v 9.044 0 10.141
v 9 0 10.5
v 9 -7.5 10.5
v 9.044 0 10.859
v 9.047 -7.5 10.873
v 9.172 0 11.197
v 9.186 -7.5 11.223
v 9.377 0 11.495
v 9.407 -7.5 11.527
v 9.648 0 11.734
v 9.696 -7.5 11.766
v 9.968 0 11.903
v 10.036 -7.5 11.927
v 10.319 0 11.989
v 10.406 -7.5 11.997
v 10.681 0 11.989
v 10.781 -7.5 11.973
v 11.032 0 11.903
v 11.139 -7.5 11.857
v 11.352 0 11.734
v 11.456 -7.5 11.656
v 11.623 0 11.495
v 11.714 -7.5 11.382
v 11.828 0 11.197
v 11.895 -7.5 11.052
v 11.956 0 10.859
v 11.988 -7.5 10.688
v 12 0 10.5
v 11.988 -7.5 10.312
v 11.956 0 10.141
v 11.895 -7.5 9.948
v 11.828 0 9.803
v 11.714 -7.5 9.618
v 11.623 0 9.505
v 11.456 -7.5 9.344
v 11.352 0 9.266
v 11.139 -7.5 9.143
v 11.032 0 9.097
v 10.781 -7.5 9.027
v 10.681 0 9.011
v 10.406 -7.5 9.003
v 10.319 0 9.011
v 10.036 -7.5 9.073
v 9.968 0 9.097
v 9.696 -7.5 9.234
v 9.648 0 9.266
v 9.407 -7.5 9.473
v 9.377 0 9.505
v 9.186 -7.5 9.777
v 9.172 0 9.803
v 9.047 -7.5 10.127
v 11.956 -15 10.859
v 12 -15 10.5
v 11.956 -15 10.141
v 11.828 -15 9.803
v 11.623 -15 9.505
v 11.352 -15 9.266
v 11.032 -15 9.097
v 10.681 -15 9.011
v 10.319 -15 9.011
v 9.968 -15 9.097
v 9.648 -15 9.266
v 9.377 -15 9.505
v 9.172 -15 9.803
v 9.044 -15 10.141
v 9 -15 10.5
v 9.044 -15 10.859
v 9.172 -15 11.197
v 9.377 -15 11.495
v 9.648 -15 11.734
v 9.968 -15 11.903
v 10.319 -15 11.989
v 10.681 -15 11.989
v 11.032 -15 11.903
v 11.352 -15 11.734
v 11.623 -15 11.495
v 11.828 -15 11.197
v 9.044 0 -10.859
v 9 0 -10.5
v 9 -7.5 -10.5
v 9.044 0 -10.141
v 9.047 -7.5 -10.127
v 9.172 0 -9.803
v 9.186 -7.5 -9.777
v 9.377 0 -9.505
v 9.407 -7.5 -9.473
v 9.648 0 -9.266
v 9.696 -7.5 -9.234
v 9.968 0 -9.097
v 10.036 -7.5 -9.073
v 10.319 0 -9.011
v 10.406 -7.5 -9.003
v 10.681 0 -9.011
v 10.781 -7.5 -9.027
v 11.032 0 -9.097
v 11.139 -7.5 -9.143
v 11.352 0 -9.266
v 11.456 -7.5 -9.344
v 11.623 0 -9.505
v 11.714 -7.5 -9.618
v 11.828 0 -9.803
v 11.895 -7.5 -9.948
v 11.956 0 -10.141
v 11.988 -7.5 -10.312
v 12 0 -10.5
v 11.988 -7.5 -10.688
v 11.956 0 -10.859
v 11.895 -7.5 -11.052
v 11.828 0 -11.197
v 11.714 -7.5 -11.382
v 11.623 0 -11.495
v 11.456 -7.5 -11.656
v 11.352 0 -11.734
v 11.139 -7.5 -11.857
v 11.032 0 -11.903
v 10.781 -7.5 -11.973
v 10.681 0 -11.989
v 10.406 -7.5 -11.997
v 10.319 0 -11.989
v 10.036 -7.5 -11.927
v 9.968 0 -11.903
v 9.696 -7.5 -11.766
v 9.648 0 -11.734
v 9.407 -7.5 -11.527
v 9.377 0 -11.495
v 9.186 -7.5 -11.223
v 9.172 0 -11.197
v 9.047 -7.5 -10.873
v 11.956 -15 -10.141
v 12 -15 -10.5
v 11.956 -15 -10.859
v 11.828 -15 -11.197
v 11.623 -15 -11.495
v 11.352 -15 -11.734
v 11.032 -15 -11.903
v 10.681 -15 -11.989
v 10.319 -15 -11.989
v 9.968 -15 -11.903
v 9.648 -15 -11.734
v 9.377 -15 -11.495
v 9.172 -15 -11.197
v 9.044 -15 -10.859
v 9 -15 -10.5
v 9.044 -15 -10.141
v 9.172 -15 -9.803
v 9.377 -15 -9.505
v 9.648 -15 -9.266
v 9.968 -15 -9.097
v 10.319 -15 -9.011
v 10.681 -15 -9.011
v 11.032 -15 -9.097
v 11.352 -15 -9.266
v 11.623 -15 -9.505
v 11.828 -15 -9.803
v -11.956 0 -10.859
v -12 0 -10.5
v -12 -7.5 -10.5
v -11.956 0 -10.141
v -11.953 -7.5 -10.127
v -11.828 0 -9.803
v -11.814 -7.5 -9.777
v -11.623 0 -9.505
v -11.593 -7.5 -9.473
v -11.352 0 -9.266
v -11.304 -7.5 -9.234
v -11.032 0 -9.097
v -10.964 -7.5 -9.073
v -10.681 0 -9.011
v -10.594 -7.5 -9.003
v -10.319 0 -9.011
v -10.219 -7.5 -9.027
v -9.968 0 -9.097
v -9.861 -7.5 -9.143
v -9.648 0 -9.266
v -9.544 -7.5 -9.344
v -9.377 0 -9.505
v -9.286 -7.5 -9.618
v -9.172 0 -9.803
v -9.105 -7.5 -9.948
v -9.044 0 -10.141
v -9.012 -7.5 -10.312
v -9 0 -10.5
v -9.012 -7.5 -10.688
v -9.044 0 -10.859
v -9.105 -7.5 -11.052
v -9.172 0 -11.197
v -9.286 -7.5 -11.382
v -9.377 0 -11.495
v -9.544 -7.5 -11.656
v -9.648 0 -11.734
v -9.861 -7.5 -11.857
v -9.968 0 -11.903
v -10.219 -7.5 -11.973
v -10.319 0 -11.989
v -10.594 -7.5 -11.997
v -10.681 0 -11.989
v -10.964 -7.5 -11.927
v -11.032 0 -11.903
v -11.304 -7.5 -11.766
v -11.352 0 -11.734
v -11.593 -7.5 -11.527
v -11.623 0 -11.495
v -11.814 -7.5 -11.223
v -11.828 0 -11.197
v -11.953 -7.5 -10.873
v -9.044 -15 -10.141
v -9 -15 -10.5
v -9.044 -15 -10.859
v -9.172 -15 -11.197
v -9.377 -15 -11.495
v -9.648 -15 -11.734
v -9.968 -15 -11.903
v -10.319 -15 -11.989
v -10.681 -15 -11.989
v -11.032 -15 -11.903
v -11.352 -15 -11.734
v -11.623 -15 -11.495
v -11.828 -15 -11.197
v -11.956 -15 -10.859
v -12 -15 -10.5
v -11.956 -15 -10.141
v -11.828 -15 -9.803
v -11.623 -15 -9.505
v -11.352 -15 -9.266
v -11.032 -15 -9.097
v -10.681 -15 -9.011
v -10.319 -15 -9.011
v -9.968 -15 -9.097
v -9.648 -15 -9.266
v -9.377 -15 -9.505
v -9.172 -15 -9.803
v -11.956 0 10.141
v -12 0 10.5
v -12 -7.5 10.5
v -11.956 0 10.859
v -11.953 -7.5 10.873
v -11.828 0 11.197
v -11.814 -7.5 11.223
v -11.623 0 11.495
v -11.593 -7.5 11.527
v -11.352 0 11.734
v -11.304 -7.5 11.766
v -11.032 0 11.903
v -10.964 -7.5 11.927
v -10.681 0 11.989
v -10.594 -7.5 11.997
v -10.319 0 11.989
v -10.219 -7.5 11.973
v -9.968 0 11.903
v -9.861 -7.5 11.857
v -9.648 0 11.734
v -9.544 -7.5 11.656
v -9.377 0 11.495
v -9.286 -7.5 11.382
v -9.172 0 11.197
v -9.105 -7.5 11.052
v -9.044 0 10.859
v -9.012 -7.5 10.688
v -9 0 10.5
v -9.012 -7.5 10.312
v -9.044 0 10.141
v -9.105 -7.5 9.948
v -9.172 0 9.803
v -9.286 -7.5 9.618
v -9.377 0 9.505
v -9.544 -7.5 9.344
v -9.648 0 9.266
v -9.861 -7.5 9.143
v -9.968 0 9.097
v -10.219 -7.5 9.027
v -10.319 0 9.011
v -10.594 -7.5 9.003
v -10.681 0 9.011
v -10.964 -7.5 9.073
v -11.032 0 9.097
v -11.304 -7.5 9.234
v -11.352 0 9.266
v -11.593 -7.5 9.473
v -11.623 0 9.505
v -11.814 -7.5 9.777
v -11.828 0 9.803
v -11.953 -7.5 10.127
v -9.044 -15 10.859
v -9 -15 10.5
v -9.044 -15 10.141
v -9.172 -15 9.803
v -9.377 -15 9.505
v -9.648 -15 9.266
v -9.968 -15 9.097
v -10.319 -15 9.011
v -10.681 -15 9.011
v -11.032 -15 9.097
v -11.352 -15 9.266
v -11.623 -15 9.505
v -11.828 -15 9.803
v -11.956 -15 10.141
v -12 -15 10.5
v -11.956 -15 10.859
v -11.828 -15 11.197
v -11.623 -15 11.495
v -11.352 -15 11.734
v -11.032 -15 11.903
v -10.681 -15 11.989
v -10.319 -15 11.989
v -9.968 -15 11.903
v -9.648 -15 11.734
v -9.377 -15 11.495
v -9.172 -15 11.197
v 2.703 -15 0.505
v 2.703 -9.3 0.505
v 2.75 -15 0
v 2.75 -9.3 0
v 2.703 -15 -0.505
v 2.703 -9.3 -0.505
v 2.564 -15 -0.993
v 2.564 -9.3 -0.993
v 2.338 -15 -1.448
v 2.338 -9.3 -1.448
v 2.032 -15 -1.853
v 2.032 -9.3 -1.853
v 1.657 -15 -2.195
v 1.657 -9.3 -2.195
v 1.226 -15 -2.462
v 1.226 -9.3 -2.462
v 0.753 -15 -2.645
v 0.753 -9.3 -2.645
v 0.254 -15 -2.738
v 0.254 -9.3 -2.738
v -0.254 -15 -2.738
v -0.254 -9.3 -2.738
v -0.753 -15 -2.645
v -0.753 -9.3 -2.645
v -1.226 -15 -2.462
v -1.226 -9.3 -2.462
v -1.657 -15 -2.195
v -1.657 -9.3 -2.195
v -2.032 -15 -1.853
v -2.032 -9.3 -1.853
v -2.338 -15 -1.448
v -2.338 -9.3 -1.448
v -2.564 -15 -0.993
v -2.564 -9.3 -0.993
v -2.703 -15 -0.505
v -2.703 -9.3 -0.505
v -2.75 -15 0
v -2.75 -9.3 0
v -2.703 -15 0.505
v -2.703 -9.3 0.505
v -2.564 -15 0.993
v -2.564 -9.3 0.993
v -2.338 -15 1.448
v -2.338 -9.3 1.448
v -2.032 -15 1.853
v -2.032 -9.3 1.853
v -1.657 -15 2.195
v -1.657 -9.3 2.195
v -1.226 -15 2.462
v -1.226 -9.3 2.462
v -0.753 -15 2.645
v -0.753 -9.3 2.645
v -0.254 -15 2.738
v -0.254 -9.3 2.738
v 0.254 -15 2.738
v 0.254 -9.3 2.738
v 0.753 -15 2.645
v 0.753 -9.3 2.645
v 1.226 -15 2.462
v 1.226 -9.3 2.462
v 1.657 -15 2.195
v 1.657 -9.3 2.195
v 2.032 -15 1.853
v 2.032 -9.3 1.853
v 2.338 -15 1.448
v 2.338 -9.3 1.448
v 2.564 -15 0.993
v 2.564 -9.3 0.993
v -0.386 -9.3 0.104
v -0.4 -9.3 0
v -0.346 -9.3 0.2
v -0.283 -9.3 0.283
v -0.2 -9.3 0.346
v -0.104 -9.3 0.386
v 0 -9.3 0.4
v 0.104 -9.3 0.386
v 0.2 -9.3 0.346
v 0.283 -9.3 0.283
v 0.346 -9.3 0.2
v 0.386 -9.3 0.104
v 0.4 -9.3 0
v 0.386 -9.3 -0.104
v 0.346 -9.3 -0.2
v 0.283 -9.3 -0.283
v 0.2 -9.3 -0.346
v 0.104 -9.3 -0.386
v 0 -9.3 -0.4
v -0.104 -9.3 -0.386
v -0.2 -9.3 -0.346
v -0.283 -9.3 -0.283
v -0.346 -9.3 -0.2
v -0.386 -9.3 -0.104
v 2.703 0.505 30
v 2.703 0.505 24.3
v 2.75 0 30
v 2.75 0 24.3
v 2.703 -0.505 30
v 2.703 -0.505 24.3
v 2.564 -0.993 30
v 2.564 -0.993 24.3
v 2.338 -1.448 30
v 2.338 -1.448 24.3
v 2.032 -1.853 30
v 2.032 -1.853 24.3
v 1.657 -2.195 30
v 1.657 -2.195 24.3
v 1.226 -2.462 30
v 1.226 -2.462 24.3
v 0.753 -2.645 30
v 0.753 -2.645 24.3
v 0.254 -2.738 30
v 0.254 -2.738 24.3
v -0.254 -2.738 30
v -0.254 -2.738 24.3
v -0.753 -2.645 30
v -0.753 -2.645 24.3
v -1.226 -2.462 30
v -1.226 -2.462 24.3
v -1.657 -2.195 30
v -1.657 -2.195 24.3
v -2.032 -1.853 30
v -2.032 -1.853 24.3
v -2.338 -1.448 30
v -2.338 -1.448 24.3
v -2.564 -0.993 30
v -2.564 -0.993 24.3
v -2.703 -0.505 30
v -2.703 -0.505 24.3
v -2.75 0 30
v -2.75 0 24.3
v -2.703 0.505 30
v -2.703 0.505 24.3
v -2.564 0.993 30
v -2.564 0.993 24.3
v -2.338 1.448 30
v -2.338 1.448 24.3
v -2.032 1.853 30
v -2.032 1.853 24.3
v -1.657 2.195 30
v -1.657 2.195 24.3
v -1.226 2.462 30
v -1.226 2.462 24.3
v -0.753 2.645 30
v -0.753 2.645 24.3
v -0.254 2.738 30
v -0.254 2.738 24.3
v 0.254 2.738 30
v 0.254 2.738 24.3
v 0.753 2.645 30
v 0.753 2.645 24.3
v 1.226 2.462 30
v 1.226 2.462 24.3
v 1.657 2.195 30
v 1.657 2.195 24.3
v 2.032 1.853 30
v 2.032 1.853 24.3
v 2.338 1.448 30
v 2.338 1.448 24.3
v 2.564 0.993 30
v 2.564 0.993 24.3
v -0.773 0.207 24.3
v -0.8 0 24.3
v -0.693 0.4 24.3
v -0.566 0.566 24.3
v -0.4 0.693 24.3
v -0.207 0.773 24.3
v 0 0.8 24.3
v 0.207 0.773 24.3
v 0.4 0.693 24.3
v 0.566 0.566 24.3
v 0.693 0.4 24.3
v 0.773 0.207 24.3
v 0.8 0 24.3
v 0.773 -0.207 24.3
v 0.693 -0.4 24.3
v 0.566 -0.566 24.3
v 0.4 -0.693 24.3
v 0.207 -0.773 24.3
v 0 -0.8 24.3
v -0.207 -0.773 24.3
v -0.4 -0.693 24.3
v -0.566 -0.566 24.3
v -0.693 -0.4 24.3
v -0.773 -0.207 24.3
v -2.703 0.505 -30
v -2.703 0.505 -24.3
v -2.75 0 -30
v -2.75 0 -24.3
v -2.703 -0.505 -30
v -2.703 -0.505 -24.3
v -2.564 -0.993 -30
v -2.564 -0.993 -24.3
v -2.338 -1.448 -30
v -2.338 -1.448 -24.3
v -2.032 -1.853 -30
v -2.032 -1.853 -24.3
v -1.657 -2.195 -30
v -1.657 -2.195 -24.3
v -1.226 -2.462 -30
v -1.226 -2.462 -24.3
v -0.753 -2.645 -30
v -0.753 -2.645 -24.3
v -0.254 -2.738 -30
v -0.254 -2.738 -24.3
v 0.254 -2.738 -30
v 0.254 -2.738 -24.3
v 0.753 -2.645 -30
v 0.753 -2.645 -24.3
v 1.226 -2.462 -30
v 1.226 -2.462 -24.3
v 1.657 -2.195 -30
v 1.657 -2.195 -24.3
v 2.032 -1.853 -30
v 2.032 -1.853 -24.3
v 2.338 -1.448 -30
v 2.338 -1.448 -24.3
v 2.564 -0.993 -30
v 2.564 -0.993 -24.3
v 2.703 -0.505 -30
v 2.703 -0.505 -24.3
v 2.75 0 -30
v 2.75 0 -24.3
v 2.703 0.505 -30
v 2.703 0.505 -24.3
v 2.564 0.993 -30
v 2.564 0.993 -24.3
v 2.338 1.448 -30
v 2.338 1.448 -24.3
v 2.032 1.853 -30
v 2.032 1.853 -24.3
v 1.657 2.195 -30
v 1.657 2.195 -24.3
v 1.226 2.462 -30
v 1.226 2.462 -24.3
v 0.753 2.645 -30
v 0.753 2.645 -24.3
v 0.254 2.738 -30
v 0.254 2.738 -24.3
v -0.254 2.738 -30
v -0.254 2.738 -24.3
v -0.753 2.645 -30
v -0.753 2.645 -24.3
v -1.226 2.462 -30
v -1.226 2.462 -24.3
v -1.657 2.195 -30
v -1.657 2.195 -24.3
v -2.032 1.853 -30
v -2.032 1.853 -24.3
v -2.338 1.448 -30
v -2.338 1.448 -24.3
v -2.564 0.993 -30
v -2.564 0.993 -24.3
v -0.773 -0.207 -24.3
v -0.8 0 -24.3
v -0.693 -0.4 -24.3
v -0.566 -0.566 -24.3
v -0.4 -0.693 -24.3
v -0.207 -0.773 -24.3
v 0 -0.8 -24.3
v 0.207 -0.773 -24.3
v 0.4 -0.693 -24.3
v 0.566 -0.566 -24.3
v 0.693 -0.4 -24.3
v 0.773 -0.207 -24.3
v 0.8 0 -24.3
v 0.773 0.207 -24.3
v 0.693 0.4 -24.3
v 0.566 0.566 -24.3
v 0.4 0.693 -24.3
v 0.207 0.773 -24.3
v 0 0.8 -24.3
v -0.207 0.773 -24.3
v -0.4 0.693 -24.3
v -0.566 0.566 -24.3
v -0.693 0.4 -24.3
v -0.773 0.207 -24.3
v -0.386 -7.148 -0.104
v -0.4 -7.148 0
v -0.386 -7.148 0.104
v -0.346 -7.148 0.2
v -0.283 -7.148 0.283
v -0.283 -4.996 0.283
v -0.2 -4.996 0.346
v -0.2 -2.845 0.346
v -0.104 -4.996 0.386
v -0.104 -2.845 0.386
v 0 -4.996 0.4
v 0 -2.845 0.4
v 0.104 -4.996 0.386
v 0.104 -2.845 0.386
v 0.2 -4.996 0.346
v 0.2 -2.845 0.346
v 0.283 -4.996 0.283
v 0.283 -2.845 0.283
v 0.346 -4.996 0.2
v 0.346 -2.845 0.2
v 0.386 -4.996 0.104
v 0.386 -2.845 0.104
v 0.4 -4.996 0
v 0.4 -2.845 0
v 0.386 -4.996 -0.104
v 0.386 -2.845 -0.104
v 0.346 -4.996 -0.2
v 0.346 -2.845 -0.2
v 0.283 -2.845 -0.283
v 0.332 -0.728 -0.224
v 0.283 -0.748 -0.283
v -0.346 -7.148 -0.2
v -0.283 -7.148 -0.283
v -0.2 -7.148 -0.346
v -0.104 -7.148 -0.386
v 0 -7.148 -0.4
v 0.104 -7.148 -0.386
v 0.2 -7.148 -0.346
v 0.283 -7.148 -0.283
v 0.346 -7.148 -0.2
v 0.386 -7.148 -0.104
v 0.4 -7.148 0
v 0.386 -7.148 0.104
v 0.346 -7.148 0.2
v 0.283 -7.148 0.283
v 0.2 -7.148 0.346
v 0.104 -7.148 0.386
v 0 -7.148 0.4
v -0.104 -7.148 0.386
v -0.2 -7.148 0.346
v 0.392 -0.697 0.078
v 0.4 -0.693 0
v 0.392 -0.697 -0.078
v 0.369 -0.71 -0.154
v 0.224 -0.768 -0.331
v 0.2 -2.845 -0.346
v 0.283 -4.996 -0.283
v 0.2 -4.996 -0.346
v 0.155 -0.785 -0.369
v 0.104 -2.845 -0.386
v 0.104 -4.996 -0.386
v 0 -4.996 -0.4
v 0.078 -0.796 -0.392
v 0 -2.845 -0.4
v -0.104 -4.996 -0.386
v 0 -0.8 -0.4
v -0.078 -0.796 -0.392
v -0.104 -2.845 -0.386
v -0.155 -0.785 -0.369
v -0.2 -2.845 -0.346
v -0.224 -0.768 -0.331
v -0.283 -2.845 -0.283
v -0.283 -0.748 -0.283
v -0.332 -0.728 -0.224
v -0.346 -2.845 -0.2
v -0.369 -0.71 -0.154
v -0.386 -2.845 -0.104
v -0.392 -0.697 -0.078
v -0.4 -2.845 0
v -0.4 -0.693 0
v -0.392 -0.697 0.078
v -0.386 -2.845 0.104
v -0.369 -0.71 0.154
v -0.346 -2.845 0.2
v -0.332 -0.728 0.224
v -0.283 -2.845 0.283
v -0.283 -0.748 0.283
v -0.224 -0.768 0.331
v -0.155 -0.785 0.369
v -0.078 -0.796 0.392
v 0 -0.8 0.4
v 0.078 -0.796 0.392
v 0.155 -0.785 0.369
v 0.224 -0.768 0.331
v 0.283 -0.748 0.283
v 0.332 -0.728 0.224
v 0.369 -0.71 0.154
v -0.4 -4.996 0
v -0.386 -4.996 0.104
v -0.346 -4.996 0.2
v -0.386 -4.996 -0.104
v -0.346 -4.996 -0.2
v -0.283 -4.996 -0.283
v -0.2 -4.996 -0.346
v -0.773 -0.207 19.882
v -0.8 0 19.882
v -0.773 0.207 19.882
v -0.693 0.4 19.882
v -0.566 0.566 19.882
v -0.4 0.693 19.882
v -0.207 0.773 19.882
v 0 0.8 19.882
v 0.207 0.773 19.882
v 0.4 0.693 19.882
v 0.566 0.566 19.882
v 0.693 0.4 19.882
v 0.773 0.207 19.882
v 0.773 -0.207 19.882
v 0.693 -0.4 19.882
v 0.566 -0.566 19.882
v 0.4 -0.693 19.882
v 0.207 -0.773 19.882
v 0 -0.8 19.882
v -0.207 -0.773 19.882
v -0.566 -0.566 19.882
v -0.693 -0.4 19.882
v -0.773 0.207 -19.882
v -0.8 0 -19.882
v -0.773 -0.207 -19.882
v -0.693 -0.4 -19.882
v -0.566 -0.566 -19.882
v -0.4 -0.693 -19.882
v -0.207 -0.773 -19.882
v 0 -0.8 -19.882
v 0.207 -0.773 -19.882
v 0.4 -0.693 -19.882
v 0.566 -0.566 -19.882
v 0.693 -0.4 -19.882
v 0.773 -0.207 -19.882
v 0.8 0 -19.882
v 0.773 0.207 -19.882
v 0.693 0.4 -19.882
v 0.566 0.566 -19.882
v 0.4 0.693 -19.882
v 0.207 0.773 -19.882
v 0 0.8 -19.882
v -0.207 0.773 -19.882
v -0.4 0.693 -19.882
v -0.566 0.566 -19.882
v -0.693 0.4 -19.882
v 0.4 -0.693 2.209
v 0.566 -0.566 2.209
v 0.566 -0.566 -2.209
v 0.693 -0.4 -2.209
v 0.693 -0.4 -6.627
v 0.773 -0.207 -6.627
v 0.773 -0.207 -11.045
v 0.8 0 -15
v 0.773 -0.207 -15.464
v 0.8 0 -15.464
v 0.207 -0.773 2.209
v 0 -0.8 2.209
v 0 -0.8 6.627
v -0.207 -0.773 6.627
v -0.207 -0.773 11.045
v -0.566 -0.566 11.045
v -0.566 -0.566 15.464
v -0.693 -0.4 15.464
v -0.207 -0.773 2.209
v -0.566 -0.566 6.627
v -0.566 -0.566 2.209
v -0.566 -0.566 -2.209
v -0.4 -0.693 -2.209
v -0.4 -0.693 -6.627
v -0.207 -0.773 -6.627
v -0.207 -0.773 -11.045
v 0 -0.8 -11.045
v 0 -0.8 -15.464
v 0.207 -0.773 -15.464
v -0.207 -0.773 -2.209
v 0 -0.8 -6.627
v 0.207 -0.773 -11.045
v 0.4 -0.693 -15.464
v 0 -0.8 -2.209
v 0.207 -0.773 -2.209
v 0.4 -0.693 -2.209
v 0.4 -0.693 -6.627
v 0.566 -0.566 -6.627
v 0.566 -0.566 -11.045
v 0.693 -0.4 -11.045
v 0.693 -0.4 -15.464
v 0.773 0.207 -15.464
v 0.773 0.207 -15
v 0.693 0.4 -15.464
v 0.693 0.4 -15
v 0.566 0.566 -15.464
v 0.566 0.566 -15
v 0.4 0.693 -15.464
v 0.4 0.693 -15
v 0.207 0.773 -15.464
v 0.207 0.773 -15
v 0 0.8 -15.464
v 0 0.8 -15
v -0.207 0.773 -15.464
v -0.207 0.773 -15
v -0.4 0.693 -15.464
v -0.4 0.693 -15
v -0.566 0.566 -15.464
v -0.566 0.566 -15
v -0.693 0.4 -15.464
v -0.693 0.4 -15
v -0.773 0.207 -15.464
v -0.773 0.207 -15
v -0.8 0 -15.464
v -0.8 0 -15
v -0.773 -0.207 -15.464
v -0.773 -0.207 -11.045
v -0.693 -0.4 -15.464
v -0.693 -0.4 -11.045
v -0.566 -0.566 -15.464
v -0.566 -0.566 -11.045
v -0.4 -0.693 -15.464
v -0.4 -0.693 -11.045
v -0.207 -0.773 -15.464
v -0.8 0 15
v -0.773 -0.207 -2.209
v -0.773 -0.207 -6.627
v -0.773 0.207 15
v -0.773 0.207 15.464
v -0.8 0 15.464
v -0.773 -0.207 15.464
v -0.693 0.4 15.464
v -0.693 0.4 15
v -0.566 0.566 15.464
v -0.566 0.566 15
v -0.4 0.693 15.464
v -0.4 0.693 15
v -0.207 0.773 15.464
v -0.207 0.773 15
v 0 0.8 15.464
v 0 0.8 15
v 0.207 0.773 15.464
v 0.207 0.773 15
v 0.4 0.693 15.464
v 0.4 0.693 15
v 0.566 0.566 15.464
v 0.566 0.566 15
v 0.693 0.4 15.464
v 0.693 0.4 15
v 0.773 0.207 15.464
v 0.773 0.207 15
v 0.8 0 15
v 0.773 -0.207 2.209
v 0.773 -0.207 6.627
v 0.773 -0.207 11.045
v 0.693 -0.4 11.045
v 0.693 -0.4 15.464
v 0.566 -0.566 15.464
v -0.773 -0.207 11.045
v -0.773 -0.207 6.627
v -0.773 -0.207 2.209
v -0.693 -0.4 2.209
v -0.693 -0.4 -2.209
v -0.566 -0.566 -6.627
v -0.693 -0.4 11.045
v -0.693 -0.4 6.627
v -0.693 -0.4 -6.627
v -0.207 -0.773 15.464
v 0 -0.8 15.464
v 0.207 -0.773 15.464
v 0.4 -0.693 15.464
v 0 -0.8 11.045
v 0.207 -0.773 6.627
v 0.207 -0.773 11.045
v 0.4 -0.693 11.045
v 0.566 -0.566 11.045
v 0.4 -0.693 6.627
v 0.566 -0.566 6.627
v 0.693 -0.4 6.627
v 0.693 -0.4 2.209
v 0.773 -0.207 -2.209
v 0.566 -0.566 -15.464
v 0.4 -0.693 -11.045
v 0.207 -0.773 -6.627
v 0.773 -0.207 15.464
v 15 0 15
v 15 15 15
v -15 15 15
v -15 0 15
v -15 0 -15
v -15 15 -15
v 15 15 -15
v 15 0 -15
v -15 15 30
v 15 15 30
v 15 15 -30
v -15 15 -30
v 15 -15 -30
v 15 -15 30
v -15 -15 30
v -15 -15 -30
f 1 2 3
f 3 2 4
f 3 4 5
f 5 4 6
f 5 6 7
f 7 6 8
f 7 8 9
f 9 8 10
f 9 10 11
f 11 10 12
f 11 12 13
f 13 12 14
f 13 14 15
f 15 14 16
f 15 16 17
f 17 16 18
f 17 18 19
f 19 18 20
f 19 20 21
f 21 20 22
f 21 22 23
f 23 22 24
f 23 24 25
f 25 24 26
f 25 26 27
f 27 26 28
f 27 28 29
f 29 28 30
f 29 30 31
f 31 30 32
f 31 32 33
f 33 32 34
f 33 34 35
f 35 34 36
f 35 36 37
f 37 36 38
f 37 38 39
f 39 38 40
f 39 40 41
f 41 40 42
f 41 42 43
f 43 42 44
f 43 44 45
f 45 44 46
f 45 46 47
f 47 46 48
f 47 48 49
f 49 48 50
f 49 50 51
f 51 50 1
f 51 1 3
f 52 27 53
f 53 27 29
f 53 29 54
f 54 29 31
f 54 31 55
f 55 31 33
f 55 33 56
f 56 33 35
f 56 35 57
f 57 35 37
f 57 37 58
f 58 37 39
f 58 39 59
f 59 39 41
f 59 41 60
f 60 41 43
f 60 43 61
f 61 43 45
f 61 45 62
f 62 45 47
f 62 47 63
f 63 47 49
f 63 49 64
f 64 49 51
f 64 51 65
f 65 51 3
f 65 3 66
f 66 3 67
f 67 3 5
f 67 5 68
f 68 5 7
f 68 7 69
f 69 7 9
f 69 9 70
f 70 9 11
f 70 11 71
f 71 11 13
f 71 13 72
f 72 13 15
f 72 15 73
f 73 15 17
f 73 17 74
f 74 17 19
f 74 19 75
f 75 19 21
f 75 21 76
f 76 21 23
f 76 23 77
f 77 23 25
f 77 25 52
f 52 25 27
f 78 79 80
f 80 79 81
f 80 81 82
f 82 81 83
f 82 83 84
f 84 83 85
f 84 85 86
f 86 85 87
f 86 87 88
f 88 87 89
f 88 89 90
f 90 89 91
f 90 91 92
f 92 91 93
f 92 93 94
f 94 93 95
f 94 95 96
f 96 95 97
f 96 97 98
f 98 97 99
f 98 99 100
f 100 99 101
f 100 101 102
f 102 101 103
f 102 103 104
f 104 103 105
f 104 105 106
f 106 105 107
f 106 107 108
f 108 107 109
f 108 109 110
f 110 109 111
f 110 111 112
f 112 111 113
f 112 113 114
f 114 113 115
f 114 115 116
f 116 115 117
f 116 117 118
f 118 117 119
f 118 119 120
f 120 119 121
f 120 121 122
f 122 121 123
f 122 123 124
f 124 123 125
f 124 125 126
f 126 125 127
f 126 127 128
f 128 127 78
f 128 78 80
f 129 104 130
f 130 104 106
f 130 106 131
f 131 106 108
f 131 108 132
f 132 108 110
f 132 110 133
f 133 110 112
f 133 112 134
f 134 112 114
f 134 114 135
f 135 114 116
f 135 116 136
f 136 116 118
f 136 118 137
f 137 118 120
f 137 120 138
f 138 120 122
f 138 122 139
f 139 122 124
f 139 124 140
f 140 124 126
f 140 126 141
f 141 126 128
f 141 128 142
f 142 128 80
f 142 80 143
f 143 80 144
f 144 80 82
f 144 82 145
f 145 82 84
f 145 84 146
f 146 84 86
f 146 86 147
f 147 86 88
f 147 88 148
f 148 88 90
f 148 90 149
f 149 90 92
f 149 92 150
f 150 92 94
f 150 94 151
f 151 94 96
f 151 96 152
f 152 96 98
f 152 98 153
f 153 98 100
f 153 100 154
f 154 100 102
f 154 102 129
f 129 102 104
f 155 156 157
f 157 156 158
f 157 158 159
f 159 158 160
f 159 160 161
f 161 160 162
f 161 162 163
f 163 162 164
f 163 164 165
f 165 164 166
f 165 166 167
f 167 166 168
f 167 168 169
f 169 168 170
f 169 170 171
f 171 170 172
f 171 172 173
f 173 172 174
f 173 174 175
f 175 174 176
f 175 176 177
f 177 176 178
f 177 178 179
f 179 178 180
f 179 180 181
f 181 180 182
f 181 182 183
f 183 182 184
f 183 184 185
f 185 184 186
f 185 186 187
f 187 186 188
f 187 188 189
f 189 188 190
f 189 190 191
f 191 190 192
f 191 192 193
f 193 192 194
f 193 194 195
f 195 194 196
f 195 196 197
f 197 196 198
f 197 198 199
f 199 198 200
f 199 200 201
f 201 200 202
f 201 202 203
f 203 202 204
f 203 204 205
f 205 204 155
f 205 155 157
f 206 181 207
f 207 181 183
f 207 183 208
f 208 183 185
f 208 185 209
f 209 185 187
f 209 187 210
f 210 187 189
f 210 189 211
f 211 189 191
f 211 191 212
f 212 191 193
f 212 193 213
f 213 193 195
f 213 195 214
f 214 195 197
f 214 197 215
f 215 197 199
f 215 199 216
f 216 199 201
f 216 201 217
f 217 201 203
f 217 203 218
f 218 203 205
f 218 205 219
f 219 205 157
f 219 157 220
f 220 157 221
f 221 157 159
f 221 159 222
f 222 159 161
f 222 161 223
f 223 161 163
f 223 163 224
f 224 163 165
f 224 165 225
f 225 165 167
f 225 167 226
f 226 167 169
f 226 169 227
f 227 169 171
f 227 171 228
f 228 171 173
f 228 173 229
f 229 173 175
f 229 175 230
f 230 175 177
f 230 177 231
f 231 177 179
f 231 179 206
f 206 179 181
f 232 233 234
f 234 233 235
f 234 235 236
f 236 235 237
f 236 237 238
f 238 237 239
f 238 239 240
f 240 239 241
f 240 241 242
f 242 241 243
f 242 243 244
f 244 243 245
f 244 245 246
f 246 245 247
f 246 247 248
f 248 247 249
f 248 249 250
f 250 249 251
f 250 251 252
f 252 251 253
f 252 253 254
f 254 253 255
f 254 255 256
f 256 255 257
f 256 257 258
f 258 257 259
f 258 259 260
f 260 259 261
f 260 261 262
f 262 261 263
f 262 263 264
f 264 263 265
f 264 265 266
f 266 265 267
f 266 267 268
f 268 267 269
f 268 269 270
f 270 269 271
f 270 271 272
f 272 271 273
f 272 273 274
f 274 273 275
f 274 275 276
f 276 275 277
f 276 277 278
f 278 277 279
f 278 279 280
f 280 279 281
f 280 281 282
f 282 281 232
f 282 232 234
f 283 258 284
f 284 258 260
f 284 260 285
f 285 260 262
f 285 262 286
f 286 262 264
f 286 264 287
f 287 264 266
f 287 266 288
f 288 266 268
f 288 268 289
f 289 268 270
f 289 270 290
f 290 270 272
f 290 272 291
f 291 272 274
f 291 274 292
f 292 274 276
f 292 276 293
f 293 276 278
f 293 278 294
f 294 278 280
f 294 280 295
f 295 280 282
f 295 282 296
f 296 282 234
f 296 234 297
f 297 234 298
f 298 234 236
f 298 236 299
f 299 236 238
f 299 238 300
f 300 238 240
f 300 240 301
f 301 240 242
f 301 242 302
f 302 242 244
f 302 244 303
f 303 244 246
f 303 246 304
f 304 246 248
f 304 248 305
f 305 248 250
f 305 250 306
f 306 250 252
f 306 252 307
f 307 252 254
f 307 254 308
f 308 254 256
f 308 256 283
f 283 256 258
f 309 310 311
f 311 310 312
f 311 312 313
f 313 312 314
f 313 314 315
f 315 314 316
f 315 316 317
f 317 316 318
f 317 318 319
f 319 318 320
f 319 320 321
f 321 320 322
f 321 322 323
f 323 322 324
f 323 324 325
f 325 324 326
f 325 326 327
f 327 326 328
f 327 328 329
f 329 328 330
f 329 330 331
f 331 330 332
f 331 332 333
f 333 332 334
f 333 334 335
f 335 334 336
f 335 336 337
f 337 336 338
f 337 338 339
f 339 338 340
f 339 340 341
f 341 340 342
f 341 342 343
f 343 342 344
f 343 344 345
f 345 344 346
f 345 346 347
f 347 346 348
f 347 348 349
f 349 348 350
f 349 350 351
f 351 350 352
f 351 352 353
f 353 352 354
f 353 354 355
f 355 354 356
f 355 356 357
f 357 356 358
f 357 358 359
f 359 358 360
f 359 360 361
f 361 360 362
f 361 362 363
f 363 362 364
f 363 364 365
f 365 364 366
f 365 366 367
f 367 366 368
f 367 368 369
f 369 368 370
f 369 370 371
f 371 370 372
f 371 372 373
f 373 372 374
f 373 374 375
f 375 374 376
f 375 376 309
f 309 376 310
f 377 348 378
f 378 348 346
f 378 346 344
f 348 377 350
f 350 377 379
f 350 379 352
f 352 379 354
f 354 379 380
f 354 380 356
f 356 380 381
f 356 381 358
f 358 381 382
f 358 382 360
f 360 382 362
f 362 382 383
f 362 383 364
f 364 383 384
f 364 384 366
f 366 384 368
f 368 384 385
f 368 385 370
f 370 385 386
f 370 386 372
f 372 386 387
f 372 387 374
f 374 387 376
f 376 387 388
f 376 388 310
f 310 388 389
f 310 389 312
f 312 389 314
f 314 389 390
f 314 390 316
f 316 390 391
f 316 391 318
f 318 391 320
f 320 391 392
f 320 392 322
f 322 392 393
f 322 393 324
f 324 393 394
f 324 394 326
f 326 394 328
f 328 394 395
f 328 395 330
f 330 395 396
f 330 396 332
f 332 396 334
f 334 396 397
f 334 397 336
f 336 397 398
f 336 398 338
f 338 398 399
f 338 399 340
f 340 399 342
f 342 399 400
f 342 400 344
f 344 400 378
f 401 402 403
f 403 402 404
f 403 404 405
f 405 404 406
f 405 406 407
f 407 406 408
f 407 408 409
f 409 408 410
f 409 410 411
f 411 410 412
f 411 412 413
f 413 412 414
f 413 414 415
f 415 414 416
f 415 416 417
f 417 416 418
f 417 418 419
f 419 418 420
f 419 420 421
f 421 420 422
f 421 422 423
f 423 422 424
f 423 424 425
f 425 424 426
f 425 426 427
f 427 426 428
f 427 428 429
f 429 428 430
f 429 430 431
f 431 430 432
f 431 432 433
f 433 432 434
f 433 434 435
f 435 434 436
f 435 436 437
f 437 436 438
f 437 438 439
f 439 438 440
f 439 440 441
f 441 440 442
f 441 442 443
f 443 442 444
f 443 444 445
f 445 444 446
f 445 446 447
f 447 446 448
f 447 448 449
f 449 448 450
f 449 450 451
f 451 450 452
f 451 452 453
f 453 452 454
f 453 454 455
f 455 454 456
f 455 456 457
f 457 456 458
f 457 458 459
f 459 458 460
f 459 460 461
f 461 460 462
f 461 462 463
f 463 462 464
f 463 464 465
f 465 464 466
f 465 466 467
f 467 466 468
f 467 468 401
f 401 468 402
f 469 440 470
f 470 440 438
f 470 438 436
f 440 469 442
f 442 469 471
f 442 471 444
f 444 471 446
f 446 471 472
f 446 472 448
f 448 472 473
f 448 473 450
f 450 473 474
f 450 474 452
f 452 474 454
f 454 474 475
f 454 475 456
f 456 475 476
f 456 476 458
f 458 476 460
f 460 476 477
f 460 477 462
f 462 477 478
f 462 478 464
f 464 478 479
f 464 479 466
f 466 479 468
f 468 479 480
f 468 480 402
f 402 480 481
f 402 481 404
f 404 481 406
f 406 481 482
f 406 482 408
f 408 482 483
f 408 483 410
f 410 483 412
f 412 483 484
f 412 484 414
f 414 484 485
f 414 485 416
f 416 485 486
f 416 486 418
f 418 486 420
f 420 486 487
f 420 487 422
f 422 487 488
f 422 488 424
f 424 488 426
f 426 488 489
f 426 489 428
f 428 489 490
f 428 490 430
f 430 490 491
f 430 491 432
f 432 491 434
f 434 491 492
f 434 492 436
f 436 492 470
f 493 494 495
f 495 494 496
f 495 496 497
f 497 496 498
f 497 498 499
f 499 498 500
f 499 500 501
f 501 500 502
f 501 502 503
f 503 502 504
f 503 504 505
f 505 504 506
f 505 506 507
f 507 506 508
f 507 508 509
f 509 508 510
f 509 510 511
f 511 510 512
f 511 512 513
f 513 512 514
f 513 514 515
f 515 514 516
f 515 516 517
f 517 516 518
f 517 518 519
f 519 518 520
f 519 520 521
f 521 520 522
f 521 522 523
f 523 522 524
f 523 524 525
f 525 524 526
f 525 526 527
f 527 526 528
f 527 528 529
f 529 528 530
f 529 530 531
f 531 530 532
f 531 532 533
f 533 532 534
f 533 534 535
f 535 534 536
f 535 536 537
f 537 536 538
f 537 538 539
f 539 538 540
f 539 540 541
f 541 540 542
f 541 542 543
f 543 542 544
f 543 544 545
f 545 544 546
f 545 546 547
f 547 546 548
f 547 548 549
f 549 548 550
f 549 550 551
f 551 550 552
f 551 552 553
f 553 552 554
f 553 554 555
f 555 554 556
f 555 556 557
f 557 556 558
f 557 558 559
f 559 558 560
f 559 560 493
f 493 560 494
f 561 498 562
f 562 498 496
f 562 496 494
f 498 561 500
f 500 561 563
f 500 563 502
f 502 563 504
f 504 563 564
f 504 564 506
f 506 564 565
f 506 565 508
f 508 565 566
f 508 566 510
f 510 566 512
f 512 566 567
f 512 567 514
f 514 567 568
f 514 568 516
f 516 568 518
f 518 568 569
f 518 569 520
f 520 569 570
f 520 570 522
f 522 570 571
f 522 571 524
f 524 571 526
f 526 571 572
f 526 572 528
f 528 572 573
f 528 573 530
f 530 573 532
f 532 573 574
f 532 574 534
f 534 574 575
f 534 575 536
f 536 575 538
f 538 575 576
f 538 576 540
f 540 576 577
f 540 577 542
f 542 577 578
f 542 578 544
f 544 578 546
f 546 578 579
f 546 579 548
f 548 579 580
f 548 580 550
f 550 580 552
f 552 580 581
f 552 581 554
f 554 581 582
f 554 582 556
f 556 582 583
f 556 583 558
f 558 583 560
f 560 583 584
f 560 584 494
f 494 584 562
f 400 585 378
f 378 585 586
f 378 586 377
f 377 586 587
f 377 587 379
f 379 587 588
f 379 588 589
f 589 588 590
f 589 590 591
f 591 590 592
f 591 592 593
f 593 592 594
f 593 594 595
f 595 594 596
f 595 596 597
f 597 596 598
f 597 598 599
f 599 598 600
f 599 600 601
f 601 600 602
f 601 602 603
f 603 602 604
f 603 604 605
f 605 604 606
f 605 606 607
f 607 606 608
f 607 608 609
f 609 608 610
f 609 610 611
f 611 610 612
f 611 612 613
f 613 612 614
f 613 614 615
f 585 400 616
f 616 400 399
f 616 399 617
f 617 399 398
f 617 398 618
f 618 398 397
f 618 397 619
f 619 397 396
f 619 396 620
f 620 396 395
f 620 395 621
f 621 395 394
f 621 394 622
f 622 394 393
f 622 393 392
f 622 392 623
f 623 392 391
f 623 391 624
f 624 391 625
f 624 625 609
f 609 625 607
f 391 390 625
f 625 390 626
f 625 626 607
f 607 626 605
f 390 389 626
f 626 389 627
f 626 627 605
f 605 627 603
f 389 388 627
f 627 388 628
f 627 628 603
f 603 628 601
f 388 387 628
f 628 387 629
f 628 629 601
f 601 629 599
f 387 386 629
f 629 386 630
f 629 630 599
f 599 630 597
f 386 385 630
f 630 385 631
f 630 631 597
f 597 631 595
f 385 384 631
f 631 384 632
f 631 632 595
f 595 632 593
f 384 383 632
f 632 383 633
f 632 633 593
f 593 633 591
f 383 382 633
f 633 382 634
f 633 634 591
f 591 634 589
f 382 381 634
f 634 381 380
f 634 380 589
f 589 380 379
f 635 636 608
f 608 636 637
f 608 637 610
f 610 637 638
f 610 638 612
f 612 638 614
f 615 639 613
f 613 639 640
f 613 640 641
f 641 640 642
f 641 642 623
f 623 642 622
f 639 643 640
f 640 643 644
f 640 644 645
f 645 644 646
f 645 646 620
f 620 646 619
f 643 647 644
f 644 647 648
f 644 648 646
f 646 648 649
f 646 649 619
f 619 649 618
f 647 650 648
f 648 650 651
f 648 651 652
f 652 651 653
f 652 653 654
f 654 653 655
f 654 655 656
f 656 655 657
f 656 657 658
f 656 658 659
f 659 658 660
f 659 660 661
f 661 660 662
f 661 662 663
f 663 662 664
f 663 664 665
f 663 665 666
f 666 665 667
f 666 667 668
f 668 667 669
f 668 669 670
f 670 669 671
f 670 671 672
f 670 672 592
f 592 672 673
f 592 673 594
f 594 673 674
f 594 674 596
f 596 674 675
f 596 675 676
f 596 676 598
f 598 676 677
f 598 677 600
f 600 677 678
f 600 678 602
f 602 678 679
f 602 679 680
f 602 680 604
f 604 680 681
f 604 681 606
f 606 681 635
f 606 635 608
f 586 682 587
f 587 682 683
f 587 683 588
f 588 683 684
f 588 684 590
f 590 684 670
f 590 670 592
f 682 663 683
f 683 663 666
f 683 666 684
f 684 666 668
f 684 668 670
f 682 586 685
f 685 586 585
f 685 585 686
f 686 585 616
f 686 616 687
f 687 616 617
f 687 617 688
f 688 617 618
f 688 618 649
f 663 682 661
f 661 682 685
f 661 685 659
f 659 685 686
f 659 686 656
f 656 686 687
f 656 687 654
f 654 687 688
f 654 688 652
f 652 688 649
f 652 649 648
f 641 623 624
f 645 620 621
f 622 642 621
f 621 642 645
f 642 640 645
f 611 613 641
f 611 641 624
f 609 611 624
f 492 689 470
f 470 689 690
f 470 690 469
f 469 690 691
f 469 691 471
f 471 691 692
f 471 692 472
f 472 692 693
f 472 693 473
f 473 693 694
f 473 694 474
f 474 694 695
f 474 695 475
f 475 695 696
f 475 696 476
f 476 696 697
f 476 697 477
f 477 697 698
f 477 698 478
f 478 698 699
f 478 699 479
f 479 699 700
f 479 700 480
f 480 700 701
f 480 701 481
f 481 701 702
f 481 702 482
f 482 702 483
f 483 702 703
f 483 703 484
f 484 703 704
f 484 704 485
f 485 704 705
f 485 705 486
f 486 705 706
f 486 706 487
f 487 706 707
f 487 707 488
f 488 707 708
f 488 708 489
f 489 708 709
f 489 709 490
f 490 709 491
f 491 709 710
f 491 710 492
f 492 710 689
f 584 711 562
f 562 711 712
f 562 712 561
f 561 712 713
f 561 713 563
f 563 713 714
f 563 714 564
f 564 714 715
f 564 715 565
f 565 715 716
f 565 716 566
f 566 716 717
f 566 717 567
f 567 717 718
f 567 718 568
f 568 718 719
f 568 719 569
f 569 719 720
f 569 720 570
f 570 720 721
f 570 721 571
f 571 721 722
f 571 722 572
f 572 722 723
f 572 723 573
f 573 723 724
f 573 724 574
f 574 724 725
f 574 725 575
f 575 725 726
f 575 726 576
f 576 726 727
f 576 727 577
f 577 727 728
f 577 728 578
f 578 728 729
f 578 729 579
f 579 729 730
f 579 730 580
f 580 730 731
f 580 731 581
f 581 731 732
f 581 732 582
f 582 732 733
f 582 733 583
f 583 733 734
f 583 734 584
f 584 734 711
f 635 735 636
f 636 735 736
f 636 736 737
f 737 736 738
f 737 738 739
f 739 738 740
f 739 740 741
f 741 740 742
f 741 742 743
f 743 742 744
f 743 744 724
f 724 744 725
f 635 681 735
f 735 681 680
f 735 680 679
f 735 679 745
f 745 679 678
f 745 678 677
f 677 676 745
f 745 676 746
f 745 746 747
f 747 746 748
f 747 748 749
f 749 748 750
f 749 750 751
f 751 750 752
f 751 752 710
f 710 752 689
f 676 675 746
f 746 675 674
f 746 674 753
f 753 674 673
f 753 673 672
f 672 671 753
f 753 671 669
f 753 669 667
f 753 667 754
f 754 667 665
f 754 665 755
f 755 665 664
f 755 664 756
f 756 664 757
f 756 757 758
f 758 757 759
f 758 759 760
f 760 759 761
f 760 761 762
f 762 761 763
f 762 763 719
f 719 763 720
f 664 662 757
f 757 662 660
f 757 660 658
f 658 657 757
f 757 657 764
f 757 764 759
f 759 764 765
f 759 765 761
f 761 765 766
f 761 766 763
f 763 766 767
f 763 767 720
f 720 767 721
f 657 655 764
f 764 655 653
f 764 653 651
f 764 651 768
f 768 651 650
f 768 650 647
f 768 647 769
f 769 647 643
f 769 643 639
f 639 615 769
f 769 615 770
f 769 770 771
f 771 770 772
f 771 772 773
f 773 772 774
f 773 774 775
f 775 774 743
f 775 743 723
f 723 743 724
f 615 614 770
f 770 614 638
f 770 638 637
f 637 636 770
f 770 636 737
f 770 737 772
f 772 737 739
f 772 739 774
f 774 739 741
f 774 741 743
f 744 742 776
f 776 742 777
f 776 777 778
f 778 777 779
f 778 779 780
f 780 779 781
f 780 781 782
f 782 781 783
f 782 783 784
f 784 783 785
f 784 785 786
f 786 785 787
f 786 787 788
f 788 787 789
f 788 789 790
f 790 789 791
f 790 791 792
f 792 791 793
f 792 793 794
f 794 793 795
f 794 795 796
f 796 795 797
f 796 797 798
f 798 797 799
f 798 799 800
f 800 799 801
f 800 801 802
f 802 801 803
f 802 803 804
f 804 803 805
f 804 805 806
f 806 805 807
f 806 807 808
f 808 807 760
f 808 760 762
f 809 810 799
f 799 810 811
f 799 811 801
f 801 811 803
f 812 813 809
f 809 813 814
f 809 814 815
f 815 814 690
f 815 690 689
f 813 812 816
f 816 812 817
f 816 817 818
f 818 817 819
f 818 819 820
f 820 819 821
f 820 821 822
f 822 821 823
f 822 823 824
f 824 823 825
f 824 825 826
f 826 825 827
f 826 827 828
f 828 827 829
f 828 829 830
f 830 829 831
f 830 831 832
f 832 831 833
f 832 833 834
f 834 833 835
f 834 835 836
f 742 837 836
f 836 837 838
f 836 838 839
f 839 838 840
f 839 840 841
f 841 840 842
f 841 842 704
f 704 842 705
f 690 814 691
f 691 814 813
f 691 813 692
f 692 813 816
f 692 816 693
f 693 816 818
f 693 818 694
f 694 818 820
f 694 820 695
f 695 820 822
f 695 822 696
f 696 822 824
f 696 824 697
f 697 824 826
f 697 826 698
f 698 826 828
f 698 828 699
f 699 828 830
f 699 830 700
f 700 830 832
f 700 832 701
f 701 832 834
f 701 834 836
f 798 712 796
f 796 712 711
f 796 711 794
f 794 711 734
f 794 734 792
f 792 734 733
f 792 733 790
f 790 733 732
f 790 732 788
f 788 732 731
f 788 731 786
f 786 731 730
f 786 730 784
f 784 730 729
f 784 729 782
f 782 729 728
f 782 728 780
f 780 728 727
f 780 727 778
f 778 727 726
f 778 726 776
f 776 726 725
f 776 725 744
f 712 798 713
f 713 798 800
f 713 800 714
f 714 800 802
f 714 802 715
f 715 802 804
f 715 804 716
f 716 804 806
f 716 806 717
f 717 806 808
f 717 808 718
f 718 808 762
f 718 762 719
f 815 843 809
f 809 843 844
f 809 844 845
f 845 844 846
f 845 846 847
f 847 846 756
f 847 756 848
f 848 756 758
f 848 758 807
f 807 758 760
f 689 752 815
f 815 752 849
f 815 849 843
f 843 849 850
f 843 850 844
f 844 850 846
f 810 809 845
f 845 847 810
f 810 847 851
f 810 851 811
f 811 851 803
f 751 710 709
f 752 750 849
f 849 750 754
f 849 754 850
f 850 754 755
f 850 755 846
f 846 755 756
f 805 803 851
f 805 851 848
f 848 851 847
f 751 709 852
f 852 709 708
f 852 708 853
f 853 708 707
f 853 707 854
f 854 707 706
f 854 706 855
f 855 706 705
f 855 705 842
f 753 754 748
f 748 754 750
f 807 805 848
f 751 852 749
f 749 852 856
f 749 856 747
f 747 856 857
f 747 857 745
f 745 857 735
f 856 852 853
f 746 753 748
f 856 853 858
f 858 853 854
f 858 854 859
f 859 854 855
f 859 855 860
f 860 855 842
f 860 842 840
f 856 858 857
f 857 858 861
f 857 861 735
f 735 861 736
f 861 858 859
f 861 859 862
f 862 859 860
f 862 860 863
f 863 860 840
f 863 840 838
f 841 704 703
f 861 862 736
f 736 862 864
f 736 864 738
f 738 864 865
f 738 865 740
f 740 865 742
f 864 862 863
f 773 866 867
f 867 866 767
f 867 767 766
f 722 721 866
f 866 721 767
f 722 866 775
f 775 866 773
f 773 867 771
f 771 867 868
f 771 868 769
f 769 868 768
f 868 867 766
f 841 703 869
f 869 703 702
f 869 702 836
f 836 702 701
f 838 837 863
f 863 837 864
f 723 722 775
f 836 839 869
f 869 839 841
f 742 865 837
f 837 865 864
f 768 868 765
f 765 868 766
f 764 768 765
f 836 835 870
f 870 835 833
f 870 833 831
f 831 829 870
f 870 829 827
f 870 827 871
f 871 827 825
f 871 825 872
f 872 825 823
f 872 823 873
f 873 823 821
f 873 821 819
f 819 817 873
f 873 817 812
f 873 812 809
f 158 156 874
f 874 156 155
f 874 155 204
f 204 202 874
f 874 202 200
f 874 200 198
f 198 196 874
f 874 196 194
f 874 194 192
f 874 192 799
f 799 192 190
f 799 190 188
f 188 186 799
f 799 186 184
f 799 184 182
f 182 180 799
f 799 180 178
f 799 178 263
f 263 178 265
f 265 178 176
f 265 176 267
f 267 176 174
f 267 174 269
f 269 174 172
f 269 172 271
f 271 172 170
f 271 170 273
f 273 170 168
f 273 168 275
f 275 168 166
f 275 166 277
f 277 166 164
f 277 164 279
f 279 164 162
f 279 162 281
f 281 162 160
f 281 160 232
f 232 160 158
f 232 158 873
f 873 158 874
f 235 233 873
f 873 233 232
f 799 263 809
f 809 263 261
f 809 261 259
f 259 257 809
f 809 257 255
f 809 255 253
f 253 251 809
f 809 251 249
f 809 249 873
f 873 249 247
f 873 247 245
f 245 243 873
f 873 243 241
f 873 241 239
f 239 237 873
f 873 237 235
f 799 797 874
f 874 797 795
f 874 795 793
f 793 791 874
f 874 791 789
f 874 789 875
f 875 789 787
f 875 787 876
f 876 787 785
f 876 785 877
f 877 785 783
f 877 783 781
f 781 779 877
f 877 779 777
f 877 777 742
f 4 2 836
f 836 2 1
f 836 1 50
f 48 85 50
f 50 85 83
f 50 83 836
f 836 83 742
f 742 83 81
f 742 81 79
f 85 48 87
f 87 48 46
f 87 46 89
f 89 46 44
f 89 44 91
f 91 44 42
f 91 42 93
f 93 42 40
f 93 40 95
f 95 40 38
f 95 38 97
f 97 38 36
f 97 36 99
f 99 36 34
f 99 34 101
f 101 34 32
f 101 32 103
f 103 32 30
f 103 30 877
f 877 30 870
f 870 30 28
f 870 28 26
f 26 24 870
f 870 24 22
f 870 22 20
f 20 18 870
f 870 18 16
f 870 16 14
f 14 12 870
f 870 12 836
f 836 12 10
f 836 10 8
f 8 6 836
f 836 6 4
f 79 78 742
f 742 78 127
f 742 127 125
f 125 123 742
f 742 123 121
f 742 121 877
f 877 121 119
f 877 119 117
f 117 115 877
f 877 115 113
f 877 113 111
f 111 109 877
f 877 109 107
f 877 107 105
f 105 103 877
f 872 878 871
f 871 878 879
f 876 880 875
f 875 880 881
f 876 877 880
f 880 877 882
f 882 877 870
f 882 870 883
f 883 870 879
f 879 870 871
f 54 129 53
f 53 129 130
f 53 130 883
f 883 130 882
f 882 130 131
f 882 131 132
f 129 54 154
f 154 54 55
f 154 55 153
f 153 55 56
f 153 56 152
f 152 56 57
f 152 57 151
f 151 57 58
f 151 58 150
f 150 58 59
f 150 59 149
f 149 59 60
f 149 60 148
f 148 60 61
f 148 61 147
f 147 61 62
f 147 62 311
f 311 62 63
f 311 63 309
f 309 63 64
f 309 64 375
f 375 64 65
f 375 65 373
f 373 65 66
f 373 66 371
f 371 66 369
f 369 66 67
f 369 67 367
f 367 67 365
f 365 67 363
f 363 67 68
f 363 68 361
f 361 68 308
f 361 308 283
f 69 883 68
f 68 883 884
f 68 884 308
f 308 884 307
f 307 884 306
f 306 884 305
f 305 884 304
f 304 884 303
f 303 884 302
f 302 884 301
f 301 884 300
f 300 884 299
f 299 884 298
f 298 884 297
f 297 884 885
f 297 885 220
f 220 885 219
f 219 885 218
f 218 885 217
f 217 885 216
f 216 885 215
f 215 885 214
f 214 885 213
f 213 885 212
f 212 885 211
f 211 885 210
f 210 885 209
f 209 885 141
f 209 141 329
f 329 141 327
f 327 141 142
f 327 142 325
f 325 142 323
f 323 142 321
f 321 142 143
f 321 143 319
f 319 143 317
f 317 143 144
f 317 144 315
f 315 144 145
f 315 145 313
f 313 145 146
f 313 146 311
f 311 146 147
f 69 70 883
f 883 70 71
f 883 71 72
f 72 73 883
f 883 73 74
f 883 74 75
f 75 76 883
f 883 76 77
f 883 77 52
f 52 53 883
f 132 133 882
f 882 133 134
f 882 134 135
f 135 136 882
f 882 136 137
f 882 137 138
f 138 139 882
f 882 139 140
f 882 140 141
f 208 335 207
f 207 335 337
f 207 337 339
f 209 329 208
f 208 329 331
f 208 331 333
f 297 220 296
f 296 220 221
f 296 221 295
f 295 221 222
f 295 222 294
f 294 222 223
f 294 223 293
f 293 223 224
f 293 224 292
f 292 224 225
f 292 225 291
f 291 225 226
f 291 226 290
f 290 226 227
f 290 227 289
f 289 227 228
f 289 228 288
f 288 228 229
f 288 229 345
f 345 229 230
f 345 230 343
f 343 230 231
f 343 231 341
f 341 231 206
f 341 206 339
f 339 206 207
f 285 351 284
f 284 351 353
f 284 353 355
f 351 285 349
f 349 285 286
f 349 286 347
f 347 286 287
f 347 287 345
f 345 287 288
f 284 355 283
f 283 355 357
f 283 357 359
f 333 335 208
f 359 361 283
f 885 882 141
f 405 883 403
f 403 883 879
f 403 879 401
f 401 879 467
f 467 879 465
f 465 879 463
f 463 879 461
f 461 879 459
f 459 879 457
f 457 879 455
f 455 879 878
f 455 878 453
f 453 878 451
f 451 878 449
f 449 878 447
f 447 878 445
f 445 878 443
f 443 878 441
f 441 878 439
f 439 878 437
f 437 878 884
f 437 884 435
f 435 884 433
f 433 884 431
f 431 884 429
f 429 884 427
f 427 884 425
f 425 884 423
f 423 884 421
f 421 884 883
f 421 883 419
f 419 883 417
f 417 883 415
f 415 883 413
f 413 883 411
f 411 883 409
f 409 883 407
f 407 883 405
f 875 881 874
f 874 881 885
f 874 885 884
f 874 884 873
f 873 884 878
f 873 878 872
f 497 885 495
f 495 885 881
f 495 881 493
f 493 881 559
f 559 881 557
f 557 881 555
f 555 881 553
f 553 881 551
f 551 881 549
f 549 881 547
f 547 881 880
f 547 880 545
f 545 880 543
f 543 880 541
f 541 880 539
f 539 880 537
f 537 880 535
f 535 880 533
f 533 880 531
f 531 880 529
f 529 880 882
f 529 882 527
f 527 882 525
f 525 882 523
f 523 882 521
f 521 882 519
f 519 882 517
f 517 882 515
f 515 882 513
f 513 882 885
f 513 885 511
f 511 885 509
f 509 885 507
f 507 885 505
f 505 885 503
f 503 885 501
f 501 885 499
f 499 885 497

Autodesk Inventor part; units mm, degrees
ref_plane "YZ Plane" through (0, 0, 0) normal (1, 0, 0) x (0, 1, 0)
ref_plane "XZ Plane" through (0, 0, 0) normal (0, 1, 0) x (-1, 0, 0)
ref_plane "XY Plane" through (0, 0, 0) normal (0, 0, 1) x (1, 0, 0)
sketch "Skizze1" plane through (0, 0, 0) normal (0, 1, 0) x (-1, 0, 0)
  line L0 (-15, 30) -> (15, 30)
  line L1 (15, 30) -> (15, -30)
  line L2 (15, -30) -> (-15, -30)
  line L3 (-15, -30) -> (-15, 30)
  line L4 (-15, 30) -> (15, -30) construction
  line L5 (15, 30) -> (-15, -30) construction
  point P0 (0, 0)
  dimension "d0" = 30
  dimension "d1" = 60
extrude "Extrusion1" add sketch "Skizze1" along normal mid plane 30
sketch "Skizze3" plane through (0, 15, 0) normal (0, 1, 0) x (1, 0, 0)
  line L0 (15, -15) -> (-15, -15)
  line L1 (-15, -15) -> (-15, 15)
  line L2 (-15, 15) -> (15, 15)
  line L3 (15, 15) -> (15, -15)
  line L4 (15, -15) -> (-15, 15) construction
  line L5 (-15, -15) -> (15, 15) construction
  point P0 (0, 0)
  dimension "d11" = 30
  dimension "d12" = 30
extrude "Extrusion2" cut sketch "Skizze3" against normal blind 15
sketch "Skizze4" plane through (-15, 15, 30) normal (0, 0, 1) x (1, 0, 0)
  circle A0 centre (15, -15) radius 0.8
  dimension "d15" = 1.6
hole "Kapillare" at (0, 0, 30) direction (0, 0, -1) diameter 1.6 end through all
sketch "Skizze5" plane through (0, -15, 0) normal (0, -1, 0) x (1, 0, 0)
  circle A0 centre (0, 0) radius 0.4
  dimension "d23" = 0.8
hole "Bohrung3" at (0, -15, 0) direction (0, 1, 0) diameter 0.8 end through all
sketch "Skizze6" plane through (15, 15, -30) normal (0, 0, -1) x (-1, 0, 0)
  point P0 (15, -15)
  point P1 (15, -15)
hole "Bohrung4" at (0, 0, -30) direction (0, 0, 1) diameter 5.5 depth 5.7
sketch "Skizze7" plane through (-15, 15, 30) normal (0, 0, 1) x (1, 0, 0)
  point P0 (15, -15)
  point P1 (15, -15)
hole "Bohrung5" at (0, 0, 30) direction (0, 0, -1) diameter 5.5 depth 5.7
sketch "Skizze8" plane through (0, -15, 0) normal (0, -1, 0) x (1, 0, 0)
  point P0 (0, 0)
  point P1 (0, 0)
hole "Bohrung6" at (0, -15, 0) direction (0, 1, 0) diameter 5.5 depth 5.7
sketch "Skizze17" plane through (0, -15, 0) normal (0, -1, 0) x (1, 0, 0)
  line L0 (10.5, 10.5) -> (-10.5, 10.5)
  line L1 (-10.5, 10.5) -> (-10.5, -10.5)
  line L2 (-10.5, -10.5) -> (10.5, -10.5)
  line L3 (10.5, -10.5) -> (10.5, 10.5)
  circle A0 centre (0, 0) radius 0.4 projected
  line L4 (10.5, 10.5) -> (-10.5, -10.5) construction
  line L5 (-10.5, 10.5) -> (10.5, -10.5) construction
  dimension "d60" = 21
  dimension "d61" = 21
hole "Bohrung8" at (10.5, -15, -10.5) at (-10.5, -15, -10.5) at (10.5, -15, 10.5) at (-10.5, -15, 10.5) direction (0, 1, 0) diameter 3 end through all
sketch "Skizze18" plane through (0, -15, 0) normal (0, -1, 0) x (1, 0, 0)
  point P0 (0, 0)
properties part number "LS1_Basis" material "PMMA-Kunststoff"
